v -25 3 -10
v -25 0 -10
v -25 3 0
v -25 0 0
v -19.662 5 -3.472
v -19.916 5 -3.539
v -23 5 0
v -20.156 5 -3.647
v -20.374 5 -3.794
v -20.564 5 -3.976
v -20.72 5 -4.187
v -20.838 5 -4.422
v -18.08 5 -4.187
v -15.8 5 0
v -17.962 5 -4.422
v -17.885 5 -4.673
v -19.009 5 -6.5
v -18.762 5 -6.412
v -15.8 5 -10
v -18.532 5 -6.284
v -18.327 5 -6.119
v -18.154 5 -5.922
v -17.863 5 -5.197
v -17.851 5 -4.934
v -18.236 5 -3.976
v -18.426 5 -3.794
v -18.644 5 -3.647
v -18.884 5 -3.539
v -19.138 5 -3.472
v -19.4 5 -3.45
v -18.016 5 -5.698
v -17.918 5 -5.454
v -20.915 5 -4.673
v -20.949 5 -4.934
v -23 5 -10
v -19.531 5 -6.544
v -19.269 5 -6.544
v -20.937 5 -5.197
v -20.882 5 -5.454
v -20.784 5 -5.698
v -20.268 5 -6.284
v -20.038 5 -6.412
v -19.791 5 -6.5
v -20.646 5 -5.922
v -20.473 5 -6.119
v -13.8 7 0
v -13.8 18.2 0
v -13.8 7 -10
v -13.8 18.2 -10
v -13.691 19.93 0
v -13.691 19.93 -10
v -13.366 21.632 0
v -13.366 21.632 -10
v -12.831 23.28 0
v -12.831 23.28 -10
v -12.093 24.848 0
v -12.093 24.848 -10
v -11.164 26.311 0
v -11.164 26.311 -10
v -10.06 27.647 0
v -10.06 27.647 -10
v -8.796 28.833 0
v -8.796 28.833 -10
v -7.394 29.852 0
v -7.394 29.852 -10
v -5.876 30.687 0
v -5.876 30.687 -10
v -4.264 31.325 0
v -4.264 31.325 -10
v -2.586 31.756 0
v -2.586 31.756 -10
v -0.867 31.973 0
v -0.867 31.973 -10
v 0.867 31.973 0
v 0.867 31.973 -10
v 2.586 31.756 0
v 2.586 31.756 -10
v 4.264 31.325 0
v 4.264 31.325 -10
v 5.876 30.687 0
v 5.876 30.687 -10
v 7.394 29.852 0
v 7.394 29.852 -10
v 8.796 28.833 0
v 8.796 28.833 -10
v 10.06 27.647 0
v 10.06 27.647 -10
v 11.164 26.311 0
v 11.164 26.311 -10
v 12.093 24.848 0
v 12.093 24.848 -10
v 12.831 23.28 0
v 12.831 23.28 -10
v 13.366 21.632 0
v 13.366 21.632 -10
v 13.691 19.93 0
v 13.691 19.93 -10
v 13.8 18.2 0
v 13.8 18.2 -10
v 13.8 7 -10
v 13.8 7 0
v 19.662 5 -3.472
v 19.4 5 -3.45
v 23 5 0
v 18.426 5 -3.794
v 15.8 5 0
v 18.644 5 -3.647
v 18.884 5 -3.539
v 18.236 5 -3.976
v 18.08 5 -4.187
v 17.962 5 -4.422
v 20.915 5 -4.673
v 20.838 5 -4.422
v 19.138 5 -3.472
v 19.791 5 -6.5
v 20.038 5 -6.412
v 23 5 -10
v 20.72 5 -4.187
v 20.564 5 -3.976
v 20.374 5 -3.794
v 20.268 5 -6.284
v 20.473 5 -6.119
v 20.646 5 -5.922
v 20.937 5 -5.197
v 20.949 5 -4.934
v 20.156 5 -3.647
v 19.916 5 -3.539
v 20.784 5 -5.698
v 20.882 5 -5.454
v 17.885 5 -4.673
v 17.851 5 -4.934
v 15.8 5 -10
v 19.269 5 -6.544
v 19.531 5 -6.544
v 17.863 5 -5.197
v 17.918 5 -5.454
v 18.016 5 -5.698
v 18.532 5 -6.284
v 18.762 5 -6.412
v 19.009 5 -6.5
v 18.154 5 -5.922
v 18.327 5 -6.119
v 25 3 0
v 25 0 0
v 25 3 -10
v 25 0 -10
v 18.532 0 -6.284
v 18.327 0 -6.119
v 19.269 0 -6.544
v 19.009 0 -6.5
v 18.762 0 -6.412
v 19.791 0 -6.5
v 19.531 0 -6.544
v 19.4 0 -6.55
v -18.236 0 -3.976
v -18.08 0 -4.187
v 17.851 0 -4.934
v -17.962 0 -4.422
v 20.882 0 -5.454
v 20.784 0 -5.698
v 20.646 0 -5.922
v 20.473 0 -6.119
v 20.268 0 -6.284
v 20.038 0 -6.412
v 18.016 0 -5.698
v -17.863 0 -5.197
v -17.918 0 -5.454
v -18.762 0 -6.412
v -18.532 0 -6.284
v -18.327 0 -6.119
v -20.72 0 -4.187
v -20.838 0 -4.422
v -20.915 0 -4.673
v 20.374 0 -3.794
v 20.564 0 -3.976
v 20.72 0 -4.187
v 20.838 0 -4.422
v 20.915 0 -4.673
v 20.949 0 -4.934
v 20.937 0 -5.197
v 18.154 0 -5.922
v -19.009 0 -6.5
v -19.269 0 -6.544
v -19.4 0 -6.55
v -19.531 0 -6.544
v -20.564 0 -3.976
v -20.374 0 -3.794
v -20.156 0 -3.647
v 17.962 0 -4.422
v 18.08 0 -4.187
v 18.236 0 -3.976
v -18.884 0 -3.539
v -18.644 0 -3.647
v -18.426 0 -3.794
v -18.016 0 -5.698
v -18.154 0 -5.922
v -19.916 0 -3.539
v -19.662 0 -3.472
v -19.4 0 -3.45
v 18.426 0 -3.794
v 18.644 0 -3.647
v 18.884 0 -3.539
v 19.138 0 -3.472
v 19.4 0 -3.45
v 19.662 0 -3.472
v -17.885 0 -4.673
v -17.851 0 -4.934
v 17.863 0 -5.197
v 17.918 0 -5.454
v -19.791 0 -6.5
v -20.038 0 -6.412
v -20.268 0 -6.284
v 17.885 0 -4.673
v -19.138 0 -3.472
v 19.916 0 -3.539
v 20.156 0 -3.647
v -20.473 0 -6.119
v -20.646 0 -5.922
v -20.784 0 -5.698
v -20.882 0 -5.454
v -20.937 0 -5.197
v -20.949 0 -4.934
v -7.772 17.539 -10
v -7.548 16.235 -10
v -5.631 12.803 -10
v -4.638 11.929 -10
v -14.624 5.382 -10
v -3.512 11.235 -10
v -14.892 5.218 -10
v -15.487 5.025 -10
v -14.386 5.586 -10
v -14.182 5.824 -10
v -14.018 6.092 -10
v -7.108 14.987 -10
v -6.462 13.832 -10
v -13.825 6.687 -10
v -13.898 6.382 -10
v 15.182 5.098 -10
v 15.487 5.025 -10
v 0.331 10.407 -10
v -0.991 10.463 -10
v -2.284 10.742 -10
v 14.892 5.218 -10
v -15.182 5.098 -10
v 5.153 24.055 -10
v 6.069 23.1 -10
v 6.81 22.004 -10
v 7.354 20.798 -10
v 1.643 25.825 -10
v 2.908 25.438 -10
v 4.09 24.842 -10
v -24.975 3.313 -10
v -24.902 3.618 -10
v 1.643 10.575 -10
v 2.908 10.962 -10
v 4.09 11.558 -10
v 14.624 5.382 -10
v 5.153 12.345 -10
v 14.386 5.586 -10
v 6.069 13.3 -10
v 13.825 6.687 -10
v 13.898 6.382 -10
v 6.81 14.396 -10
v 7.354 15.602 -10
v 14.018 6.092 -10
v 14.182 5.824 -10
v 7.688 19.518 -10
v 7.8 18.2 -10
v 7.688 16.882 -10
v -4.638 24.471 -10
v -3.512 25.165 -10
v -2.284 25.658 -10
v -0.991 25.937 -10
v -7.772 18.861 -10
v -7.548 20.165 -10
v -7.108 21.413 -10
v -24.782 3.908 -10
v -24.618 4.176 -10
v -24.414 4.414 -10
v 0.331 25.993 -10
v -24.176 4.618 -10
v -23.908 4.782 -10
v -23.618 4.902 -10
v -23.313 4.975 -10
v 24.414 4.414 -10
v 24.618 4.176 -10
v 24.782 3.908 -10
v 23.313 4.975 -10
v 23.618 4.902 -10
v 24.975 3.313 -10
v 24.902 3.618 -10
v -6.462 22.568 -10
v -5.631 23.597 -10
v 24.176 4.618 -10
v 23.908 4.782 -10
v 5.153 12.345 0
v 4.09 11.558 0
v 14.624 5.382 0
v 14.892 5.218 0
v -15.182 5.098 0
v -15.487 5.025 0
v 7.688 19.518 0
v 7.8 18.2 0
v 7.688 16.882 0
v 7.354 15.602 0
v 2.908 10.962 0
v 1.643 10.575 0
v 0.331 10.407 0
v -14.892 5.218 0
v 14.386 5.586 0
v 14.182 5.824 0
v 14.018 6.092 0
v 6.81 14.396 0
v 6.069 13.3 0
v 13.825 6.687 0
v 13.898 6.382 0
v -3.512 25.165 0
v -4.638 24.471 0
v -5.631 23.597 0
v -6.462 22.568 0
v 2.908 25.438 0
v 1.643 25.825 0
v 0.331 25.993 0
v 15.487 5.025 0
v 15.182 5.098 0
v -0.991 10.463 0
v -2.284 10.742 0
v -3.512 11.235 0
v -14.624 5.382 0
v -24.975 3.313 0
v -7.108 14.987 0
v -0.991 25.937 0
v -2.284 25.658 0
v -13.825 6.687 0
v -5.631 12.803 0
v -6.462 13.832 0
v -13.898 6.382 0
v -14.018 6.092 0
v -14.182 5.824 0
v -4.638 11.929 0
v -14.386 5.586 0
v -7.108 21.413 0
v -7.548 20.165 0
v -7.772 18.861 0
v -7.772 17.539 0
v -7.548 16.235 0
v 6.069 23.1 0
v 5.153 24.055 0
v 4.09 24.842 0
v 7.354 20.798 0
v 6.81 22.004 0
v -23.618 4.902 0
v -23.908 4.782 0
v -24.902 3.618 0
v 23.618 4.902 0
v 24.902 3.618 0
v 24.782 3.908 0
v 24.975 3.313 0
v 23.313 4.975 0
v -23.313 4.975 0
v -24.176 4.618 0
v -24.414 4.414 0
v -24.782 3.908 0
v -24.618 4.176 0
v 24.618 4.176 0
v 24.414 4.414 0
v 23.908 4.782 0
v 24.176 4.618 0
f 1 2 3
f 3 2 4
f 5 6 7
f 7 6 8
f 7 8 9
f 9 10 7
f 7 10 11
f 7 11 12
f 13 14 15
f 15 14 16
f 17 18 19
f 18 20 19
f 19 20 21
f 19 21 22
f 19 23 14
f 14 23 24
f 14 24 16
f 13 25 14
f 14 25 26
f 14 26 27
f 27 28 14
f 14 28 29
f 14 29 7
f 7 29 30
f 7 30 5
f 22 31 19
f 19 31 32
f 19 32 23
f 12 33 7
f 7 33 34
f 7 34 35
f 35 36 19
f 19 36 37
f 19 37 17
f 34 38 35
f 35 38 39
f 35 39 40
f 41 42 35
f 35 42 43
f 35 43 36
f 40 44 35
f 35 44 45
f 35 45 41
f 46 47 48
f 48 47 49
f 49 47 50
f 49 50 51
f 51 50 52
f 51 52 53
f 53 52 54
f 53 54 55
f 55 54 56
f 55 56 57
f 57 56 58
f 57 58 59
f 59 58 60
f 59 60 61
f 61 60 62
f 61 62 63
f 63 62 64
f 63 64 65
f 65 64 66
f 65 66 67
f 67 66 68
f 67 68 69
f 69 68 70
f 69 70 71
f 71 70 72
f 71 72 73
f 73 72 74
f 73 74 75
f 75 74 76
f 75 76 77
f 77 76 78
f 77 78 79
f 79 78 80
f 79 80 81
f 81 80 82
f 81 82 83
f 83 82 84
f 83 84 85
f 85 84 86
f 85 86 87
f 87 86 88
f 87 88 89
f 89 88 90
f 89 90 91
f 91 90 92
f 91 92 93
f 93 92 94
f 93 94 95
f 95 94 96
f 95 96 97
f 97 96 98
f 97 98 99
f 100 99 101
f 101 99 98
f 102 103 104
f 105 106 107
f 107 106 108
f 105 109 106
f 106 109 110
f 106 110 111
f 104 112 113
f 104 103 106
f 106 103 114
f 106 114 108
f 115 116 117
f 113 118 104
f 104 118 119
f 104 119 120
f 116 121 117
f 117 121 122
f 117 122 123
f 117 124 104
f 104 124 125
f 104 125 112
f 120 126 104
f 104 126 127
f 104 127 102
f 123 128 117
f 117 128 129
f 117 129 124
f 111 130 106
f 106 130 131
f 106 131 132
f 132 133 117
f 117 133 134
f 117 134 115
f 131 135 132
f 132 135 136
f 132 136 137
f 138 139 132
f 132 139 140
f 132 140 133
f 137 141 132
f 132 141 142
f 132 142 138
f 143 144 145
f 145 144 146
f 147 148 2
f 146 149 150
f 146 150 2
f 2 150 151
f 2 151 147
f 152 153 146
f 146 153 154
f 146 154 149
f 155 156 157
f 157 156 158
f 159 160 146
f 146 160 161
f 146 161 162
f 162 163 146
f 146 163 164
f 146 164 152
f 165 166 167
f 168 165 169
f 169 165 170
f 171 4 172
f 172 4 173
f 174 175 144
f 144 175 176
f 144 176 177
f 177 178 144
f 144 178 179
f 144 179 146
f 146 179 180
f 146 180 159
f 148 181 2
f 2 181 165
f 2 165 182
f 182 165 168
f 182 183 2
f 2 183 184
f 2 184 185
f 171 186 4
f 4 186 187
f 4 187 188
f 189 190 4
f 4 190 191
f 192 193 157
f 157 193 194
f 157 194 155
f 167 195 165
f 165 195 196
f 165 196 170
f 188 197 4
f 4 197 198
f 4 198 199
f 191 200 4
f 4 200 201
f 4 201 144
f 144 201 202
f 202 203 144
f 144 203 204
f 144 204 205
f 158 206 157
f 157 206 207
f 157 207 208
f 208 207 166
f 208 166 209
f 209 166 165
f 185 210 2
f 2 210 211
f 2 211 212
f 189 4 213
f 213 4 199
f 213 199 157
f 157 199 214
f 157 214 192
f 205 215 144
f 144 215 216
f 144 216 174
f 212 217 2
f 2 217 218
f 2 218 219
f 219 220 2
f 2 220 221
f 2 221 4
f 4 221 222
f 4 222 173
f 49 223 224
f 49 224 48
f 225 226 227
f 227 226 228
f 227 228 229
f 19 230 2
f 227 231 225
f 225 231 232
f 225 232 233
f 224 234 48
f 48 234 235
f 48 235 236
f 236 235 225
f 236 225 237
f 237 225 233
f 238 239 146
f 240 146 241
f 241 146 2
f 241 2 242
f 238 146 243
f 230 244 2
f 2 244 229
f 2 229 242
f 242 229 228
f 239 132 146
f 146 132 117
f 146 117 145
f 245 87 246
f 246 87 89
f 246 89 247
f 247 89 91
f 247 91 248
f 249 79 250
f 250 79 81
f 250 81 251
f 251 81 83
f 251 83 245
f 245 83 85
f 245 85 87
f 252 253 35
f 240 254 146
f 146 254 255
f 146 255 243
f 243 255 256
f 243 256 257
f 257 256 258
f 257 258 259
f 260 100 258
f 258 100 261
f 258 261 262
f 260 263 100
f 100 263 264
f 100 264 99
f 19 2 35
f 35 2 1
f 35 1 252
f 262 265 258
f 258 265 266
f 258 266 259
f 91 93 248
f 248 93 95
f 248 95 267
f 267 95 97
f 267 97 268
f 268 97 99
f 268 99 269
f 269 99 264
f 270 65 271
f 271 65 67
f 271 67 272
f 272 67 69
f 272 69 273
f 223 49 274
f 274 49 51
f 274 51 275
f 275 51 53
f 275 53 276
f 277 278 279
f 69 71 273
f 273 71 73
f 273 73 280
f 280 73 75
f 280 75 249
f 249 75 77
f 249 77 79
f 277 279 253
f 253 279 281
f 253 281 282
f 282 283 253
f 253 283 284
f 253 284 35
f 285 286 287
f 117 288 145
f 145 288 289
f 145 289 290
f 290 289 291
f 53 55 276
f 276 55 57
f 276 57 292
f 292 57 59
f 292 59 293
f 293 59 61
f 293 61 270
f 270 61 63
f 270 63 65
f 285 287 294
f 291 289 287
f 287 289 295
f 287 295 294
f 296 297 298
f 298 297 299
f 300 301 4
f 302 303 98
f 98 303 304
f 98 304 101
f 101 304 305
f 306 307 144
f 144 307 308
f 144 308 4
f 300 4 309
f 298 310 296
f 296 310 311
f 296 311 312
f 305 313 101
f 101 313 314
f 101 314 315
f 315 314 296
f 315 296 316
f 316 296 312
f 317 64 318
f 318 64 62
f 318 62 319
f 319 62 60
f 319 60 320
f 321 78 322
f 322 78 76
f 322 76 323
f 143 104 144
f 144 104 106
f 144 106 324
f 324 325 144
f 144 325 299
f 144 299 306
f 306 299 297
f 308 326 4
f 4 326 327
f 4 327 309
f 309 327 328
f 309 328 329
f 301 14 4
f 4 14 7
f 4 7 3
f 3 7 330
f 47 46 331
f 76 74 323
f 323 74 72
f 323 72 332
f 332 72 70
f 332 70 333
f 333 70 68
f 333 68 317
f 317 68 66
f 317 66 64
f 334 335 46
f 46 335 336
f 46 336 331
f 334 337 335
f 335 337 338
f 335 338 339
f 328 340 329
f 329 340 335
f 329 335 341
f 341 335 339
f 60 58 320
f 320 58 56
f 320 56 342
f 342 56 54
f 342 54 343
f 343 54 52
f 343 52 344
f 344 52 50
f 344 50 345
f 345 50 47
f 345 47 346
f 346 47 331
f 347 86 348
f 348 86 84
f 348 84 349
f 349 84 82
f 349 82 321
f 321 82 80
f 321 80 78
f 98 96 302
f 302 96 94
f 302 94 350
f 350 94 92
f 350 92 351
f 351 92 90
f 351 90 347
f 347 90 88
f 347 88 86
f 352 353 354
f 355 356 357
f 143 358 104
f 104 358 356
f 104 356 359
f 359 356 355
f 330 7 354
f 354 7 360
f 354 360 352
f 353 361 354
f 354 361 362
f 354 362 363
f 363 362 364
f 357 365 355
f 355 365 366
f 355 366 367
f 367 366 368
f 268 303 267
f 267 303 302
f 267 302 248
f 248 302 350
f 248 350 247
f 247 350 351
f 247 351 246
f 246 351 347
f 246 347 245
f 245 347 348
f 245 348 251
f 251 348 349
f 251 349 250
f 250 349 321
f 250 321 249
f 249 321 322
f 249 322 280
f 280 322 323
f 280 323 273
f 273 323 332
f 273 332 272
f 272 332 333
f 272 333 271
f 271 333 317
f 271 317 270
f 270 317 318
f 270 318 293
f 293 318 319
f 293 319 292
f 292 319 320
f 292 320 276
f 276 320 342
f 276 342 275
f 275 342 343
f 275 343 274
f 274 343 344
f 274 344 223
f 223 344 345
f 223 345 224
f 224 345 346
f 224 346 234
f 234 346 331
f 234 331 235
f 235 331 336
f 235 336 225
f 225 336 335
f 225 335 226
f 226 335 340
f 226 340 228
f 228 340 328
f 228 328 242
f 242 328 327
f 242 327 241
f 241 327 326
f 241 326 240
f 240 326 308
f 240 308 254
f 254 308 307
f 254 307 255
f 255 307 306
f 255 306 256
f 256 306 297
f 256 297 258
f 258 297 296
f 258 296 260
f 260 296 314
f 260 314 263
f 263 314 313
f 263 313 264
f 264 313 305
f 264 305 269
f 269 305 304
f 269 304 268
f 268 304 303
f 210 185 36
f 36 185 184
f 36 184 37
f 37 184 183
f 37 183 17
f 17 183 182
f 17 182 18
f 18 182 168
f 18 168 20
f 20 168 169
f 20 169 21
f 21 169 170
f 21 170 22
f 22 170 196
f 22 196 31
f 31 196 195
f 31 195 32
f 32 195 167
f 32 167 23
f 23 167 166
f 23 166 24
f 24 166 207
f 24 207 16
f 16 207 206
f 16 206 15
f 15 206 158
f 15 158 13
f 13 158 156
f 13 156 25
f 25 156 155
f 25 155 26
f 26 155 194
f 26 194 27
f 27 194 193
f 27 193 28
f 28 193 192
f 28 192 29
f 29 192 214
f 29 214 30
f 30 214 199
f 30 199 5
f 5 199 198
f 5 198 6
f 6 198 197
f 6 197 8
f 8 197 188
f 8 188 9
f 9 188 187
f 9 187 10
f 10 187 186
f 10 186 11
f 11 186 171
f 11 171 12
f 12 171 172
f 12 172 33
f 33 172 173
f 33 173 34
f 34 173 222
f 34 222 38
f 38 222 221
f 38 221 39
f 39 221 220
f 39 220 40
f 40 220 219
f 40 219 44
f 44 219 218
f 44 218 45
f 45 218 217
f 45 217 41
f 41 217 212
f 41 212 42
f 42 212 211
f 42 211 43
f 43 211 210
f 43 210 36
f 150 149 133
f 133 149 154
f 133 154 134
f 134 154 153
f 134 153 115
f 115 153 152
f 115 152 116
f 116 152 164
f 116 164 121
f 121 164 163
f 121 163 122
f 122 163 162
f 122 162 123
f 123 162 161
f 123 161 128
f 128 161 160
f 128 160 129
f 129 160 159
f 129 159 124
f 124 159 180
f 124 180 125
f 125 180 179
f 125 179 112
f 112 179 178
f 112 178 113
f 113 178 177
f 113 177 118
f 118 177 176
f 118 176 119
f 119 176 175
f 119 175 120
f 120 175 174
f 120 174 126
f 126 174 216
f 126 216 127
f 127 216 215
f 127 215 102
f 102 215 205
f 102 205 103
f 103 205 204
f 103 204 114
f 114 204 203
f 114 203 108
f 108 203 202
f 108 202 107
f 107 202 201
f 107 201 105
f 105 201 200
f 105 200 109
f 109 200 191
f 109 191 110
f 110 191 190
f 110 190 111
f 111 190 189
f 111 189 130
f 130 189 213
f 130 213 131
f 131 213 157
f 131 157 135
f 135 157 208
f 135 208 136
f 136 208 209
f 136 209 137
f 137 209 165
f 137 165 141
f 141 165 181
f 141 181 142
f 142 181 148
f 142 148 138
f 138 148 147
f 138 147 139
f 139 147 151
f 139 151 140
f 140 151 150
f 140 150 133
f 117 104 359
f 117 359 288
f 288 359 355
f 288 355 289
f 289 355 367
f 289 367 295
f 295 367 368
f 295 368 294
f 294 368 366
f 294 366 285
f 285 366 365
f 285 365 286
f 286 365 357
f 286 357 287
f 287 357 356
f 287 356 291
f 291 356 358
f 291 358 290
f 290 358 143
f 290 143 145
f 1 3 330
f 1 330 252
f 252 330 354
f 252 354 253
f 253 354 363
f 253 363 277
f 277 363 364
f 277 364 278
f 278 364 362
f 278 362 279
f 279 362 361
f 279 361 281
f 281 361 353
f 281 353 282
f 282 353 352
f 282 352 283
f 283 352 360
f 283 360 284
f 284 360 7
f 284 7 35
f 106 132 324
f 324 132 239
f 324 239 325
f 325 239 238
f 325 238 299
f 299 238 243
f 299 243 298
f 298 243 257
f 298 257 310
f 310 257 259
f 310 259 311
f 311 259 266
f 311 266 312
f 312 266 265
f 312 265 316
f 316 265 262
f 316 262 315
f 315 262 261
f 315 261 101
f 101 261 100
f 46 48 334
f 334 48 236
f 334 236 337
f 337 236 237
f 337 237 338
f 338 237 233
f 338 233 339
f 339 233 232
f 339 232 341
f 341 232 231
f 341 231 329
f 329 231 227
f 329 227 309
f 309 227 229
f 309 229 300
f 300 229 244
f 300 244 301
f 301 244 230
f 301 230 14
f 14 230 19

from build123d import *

# Parameters (mm, degrees)
SKETCH1_R           = 7.8
BOSS_EXTRUDE1_DEPTH = 10
SKETCH2_R           = 1.55
CUT_EXTRUDE1_DEPTH  = 5
FILLET1_R           = 2


with BuildPart() as part:
    # Sketch1 → Boss-Extrude1 (new body)
    with BuildSketch(Plane.XY):
        with BuildLine():
            Line((-25, 0), (25, 0))
            Line((25, 0), (25, 5))
            Line((25, 5), (13.8, 5))
            Line((13.8, 5), (13.8, 18.2))
            ThreePointArc((13.8, 18.2), (0, 32), (-13.8, 18.2))
            Line((-13.8, 18.2), (-13.8, 5))
            Line((-13.8, 5), (-25, 5))
            Line((-25, 5), (-25, 0))
        make_face()
        with Locations((0, 18.2)):
            Circle(SKETCH1_R, mode=Mode.SUBTRACT)
    extrude(amount=-BOSS_EXTRUDE1_DEPTH)

    # Sketch2 → Cut-Extrude1 (cut)
    with BuildSketch(Plane(origin=(0, 5, 0), x_dir=(1, 0, 0), z_dir=(0, 1, 0))):
        with Locations((-19.4, 5)):
            Circle(SKETCH2_R)
    cut_extrude1 = extrude(amount=-CUT_EXTRUDE1_DEPTH, mode=Mode.SUBTRACT)

    # Mirror1: Cut-Extrude1 across plane
    add(cut_extrude1.mirror(Plane(origin=(0, 0, 0), x_dir=(0, 0, 1), z_dir=(1, 0, 0))), mode=Mode.SUBTRACT)

    # Fillet1
    fillet1_edges = [part.edges().sort_by_distance(p)[0] for p in [
        (-25, 5, -5),
        (-13.8, 5, -5),
        (13.8, 5, -5),
        (25, 5, -5),
    ]]
    fillet(fillet1_edges, radius=FILLET1_R)


solid = part.part
